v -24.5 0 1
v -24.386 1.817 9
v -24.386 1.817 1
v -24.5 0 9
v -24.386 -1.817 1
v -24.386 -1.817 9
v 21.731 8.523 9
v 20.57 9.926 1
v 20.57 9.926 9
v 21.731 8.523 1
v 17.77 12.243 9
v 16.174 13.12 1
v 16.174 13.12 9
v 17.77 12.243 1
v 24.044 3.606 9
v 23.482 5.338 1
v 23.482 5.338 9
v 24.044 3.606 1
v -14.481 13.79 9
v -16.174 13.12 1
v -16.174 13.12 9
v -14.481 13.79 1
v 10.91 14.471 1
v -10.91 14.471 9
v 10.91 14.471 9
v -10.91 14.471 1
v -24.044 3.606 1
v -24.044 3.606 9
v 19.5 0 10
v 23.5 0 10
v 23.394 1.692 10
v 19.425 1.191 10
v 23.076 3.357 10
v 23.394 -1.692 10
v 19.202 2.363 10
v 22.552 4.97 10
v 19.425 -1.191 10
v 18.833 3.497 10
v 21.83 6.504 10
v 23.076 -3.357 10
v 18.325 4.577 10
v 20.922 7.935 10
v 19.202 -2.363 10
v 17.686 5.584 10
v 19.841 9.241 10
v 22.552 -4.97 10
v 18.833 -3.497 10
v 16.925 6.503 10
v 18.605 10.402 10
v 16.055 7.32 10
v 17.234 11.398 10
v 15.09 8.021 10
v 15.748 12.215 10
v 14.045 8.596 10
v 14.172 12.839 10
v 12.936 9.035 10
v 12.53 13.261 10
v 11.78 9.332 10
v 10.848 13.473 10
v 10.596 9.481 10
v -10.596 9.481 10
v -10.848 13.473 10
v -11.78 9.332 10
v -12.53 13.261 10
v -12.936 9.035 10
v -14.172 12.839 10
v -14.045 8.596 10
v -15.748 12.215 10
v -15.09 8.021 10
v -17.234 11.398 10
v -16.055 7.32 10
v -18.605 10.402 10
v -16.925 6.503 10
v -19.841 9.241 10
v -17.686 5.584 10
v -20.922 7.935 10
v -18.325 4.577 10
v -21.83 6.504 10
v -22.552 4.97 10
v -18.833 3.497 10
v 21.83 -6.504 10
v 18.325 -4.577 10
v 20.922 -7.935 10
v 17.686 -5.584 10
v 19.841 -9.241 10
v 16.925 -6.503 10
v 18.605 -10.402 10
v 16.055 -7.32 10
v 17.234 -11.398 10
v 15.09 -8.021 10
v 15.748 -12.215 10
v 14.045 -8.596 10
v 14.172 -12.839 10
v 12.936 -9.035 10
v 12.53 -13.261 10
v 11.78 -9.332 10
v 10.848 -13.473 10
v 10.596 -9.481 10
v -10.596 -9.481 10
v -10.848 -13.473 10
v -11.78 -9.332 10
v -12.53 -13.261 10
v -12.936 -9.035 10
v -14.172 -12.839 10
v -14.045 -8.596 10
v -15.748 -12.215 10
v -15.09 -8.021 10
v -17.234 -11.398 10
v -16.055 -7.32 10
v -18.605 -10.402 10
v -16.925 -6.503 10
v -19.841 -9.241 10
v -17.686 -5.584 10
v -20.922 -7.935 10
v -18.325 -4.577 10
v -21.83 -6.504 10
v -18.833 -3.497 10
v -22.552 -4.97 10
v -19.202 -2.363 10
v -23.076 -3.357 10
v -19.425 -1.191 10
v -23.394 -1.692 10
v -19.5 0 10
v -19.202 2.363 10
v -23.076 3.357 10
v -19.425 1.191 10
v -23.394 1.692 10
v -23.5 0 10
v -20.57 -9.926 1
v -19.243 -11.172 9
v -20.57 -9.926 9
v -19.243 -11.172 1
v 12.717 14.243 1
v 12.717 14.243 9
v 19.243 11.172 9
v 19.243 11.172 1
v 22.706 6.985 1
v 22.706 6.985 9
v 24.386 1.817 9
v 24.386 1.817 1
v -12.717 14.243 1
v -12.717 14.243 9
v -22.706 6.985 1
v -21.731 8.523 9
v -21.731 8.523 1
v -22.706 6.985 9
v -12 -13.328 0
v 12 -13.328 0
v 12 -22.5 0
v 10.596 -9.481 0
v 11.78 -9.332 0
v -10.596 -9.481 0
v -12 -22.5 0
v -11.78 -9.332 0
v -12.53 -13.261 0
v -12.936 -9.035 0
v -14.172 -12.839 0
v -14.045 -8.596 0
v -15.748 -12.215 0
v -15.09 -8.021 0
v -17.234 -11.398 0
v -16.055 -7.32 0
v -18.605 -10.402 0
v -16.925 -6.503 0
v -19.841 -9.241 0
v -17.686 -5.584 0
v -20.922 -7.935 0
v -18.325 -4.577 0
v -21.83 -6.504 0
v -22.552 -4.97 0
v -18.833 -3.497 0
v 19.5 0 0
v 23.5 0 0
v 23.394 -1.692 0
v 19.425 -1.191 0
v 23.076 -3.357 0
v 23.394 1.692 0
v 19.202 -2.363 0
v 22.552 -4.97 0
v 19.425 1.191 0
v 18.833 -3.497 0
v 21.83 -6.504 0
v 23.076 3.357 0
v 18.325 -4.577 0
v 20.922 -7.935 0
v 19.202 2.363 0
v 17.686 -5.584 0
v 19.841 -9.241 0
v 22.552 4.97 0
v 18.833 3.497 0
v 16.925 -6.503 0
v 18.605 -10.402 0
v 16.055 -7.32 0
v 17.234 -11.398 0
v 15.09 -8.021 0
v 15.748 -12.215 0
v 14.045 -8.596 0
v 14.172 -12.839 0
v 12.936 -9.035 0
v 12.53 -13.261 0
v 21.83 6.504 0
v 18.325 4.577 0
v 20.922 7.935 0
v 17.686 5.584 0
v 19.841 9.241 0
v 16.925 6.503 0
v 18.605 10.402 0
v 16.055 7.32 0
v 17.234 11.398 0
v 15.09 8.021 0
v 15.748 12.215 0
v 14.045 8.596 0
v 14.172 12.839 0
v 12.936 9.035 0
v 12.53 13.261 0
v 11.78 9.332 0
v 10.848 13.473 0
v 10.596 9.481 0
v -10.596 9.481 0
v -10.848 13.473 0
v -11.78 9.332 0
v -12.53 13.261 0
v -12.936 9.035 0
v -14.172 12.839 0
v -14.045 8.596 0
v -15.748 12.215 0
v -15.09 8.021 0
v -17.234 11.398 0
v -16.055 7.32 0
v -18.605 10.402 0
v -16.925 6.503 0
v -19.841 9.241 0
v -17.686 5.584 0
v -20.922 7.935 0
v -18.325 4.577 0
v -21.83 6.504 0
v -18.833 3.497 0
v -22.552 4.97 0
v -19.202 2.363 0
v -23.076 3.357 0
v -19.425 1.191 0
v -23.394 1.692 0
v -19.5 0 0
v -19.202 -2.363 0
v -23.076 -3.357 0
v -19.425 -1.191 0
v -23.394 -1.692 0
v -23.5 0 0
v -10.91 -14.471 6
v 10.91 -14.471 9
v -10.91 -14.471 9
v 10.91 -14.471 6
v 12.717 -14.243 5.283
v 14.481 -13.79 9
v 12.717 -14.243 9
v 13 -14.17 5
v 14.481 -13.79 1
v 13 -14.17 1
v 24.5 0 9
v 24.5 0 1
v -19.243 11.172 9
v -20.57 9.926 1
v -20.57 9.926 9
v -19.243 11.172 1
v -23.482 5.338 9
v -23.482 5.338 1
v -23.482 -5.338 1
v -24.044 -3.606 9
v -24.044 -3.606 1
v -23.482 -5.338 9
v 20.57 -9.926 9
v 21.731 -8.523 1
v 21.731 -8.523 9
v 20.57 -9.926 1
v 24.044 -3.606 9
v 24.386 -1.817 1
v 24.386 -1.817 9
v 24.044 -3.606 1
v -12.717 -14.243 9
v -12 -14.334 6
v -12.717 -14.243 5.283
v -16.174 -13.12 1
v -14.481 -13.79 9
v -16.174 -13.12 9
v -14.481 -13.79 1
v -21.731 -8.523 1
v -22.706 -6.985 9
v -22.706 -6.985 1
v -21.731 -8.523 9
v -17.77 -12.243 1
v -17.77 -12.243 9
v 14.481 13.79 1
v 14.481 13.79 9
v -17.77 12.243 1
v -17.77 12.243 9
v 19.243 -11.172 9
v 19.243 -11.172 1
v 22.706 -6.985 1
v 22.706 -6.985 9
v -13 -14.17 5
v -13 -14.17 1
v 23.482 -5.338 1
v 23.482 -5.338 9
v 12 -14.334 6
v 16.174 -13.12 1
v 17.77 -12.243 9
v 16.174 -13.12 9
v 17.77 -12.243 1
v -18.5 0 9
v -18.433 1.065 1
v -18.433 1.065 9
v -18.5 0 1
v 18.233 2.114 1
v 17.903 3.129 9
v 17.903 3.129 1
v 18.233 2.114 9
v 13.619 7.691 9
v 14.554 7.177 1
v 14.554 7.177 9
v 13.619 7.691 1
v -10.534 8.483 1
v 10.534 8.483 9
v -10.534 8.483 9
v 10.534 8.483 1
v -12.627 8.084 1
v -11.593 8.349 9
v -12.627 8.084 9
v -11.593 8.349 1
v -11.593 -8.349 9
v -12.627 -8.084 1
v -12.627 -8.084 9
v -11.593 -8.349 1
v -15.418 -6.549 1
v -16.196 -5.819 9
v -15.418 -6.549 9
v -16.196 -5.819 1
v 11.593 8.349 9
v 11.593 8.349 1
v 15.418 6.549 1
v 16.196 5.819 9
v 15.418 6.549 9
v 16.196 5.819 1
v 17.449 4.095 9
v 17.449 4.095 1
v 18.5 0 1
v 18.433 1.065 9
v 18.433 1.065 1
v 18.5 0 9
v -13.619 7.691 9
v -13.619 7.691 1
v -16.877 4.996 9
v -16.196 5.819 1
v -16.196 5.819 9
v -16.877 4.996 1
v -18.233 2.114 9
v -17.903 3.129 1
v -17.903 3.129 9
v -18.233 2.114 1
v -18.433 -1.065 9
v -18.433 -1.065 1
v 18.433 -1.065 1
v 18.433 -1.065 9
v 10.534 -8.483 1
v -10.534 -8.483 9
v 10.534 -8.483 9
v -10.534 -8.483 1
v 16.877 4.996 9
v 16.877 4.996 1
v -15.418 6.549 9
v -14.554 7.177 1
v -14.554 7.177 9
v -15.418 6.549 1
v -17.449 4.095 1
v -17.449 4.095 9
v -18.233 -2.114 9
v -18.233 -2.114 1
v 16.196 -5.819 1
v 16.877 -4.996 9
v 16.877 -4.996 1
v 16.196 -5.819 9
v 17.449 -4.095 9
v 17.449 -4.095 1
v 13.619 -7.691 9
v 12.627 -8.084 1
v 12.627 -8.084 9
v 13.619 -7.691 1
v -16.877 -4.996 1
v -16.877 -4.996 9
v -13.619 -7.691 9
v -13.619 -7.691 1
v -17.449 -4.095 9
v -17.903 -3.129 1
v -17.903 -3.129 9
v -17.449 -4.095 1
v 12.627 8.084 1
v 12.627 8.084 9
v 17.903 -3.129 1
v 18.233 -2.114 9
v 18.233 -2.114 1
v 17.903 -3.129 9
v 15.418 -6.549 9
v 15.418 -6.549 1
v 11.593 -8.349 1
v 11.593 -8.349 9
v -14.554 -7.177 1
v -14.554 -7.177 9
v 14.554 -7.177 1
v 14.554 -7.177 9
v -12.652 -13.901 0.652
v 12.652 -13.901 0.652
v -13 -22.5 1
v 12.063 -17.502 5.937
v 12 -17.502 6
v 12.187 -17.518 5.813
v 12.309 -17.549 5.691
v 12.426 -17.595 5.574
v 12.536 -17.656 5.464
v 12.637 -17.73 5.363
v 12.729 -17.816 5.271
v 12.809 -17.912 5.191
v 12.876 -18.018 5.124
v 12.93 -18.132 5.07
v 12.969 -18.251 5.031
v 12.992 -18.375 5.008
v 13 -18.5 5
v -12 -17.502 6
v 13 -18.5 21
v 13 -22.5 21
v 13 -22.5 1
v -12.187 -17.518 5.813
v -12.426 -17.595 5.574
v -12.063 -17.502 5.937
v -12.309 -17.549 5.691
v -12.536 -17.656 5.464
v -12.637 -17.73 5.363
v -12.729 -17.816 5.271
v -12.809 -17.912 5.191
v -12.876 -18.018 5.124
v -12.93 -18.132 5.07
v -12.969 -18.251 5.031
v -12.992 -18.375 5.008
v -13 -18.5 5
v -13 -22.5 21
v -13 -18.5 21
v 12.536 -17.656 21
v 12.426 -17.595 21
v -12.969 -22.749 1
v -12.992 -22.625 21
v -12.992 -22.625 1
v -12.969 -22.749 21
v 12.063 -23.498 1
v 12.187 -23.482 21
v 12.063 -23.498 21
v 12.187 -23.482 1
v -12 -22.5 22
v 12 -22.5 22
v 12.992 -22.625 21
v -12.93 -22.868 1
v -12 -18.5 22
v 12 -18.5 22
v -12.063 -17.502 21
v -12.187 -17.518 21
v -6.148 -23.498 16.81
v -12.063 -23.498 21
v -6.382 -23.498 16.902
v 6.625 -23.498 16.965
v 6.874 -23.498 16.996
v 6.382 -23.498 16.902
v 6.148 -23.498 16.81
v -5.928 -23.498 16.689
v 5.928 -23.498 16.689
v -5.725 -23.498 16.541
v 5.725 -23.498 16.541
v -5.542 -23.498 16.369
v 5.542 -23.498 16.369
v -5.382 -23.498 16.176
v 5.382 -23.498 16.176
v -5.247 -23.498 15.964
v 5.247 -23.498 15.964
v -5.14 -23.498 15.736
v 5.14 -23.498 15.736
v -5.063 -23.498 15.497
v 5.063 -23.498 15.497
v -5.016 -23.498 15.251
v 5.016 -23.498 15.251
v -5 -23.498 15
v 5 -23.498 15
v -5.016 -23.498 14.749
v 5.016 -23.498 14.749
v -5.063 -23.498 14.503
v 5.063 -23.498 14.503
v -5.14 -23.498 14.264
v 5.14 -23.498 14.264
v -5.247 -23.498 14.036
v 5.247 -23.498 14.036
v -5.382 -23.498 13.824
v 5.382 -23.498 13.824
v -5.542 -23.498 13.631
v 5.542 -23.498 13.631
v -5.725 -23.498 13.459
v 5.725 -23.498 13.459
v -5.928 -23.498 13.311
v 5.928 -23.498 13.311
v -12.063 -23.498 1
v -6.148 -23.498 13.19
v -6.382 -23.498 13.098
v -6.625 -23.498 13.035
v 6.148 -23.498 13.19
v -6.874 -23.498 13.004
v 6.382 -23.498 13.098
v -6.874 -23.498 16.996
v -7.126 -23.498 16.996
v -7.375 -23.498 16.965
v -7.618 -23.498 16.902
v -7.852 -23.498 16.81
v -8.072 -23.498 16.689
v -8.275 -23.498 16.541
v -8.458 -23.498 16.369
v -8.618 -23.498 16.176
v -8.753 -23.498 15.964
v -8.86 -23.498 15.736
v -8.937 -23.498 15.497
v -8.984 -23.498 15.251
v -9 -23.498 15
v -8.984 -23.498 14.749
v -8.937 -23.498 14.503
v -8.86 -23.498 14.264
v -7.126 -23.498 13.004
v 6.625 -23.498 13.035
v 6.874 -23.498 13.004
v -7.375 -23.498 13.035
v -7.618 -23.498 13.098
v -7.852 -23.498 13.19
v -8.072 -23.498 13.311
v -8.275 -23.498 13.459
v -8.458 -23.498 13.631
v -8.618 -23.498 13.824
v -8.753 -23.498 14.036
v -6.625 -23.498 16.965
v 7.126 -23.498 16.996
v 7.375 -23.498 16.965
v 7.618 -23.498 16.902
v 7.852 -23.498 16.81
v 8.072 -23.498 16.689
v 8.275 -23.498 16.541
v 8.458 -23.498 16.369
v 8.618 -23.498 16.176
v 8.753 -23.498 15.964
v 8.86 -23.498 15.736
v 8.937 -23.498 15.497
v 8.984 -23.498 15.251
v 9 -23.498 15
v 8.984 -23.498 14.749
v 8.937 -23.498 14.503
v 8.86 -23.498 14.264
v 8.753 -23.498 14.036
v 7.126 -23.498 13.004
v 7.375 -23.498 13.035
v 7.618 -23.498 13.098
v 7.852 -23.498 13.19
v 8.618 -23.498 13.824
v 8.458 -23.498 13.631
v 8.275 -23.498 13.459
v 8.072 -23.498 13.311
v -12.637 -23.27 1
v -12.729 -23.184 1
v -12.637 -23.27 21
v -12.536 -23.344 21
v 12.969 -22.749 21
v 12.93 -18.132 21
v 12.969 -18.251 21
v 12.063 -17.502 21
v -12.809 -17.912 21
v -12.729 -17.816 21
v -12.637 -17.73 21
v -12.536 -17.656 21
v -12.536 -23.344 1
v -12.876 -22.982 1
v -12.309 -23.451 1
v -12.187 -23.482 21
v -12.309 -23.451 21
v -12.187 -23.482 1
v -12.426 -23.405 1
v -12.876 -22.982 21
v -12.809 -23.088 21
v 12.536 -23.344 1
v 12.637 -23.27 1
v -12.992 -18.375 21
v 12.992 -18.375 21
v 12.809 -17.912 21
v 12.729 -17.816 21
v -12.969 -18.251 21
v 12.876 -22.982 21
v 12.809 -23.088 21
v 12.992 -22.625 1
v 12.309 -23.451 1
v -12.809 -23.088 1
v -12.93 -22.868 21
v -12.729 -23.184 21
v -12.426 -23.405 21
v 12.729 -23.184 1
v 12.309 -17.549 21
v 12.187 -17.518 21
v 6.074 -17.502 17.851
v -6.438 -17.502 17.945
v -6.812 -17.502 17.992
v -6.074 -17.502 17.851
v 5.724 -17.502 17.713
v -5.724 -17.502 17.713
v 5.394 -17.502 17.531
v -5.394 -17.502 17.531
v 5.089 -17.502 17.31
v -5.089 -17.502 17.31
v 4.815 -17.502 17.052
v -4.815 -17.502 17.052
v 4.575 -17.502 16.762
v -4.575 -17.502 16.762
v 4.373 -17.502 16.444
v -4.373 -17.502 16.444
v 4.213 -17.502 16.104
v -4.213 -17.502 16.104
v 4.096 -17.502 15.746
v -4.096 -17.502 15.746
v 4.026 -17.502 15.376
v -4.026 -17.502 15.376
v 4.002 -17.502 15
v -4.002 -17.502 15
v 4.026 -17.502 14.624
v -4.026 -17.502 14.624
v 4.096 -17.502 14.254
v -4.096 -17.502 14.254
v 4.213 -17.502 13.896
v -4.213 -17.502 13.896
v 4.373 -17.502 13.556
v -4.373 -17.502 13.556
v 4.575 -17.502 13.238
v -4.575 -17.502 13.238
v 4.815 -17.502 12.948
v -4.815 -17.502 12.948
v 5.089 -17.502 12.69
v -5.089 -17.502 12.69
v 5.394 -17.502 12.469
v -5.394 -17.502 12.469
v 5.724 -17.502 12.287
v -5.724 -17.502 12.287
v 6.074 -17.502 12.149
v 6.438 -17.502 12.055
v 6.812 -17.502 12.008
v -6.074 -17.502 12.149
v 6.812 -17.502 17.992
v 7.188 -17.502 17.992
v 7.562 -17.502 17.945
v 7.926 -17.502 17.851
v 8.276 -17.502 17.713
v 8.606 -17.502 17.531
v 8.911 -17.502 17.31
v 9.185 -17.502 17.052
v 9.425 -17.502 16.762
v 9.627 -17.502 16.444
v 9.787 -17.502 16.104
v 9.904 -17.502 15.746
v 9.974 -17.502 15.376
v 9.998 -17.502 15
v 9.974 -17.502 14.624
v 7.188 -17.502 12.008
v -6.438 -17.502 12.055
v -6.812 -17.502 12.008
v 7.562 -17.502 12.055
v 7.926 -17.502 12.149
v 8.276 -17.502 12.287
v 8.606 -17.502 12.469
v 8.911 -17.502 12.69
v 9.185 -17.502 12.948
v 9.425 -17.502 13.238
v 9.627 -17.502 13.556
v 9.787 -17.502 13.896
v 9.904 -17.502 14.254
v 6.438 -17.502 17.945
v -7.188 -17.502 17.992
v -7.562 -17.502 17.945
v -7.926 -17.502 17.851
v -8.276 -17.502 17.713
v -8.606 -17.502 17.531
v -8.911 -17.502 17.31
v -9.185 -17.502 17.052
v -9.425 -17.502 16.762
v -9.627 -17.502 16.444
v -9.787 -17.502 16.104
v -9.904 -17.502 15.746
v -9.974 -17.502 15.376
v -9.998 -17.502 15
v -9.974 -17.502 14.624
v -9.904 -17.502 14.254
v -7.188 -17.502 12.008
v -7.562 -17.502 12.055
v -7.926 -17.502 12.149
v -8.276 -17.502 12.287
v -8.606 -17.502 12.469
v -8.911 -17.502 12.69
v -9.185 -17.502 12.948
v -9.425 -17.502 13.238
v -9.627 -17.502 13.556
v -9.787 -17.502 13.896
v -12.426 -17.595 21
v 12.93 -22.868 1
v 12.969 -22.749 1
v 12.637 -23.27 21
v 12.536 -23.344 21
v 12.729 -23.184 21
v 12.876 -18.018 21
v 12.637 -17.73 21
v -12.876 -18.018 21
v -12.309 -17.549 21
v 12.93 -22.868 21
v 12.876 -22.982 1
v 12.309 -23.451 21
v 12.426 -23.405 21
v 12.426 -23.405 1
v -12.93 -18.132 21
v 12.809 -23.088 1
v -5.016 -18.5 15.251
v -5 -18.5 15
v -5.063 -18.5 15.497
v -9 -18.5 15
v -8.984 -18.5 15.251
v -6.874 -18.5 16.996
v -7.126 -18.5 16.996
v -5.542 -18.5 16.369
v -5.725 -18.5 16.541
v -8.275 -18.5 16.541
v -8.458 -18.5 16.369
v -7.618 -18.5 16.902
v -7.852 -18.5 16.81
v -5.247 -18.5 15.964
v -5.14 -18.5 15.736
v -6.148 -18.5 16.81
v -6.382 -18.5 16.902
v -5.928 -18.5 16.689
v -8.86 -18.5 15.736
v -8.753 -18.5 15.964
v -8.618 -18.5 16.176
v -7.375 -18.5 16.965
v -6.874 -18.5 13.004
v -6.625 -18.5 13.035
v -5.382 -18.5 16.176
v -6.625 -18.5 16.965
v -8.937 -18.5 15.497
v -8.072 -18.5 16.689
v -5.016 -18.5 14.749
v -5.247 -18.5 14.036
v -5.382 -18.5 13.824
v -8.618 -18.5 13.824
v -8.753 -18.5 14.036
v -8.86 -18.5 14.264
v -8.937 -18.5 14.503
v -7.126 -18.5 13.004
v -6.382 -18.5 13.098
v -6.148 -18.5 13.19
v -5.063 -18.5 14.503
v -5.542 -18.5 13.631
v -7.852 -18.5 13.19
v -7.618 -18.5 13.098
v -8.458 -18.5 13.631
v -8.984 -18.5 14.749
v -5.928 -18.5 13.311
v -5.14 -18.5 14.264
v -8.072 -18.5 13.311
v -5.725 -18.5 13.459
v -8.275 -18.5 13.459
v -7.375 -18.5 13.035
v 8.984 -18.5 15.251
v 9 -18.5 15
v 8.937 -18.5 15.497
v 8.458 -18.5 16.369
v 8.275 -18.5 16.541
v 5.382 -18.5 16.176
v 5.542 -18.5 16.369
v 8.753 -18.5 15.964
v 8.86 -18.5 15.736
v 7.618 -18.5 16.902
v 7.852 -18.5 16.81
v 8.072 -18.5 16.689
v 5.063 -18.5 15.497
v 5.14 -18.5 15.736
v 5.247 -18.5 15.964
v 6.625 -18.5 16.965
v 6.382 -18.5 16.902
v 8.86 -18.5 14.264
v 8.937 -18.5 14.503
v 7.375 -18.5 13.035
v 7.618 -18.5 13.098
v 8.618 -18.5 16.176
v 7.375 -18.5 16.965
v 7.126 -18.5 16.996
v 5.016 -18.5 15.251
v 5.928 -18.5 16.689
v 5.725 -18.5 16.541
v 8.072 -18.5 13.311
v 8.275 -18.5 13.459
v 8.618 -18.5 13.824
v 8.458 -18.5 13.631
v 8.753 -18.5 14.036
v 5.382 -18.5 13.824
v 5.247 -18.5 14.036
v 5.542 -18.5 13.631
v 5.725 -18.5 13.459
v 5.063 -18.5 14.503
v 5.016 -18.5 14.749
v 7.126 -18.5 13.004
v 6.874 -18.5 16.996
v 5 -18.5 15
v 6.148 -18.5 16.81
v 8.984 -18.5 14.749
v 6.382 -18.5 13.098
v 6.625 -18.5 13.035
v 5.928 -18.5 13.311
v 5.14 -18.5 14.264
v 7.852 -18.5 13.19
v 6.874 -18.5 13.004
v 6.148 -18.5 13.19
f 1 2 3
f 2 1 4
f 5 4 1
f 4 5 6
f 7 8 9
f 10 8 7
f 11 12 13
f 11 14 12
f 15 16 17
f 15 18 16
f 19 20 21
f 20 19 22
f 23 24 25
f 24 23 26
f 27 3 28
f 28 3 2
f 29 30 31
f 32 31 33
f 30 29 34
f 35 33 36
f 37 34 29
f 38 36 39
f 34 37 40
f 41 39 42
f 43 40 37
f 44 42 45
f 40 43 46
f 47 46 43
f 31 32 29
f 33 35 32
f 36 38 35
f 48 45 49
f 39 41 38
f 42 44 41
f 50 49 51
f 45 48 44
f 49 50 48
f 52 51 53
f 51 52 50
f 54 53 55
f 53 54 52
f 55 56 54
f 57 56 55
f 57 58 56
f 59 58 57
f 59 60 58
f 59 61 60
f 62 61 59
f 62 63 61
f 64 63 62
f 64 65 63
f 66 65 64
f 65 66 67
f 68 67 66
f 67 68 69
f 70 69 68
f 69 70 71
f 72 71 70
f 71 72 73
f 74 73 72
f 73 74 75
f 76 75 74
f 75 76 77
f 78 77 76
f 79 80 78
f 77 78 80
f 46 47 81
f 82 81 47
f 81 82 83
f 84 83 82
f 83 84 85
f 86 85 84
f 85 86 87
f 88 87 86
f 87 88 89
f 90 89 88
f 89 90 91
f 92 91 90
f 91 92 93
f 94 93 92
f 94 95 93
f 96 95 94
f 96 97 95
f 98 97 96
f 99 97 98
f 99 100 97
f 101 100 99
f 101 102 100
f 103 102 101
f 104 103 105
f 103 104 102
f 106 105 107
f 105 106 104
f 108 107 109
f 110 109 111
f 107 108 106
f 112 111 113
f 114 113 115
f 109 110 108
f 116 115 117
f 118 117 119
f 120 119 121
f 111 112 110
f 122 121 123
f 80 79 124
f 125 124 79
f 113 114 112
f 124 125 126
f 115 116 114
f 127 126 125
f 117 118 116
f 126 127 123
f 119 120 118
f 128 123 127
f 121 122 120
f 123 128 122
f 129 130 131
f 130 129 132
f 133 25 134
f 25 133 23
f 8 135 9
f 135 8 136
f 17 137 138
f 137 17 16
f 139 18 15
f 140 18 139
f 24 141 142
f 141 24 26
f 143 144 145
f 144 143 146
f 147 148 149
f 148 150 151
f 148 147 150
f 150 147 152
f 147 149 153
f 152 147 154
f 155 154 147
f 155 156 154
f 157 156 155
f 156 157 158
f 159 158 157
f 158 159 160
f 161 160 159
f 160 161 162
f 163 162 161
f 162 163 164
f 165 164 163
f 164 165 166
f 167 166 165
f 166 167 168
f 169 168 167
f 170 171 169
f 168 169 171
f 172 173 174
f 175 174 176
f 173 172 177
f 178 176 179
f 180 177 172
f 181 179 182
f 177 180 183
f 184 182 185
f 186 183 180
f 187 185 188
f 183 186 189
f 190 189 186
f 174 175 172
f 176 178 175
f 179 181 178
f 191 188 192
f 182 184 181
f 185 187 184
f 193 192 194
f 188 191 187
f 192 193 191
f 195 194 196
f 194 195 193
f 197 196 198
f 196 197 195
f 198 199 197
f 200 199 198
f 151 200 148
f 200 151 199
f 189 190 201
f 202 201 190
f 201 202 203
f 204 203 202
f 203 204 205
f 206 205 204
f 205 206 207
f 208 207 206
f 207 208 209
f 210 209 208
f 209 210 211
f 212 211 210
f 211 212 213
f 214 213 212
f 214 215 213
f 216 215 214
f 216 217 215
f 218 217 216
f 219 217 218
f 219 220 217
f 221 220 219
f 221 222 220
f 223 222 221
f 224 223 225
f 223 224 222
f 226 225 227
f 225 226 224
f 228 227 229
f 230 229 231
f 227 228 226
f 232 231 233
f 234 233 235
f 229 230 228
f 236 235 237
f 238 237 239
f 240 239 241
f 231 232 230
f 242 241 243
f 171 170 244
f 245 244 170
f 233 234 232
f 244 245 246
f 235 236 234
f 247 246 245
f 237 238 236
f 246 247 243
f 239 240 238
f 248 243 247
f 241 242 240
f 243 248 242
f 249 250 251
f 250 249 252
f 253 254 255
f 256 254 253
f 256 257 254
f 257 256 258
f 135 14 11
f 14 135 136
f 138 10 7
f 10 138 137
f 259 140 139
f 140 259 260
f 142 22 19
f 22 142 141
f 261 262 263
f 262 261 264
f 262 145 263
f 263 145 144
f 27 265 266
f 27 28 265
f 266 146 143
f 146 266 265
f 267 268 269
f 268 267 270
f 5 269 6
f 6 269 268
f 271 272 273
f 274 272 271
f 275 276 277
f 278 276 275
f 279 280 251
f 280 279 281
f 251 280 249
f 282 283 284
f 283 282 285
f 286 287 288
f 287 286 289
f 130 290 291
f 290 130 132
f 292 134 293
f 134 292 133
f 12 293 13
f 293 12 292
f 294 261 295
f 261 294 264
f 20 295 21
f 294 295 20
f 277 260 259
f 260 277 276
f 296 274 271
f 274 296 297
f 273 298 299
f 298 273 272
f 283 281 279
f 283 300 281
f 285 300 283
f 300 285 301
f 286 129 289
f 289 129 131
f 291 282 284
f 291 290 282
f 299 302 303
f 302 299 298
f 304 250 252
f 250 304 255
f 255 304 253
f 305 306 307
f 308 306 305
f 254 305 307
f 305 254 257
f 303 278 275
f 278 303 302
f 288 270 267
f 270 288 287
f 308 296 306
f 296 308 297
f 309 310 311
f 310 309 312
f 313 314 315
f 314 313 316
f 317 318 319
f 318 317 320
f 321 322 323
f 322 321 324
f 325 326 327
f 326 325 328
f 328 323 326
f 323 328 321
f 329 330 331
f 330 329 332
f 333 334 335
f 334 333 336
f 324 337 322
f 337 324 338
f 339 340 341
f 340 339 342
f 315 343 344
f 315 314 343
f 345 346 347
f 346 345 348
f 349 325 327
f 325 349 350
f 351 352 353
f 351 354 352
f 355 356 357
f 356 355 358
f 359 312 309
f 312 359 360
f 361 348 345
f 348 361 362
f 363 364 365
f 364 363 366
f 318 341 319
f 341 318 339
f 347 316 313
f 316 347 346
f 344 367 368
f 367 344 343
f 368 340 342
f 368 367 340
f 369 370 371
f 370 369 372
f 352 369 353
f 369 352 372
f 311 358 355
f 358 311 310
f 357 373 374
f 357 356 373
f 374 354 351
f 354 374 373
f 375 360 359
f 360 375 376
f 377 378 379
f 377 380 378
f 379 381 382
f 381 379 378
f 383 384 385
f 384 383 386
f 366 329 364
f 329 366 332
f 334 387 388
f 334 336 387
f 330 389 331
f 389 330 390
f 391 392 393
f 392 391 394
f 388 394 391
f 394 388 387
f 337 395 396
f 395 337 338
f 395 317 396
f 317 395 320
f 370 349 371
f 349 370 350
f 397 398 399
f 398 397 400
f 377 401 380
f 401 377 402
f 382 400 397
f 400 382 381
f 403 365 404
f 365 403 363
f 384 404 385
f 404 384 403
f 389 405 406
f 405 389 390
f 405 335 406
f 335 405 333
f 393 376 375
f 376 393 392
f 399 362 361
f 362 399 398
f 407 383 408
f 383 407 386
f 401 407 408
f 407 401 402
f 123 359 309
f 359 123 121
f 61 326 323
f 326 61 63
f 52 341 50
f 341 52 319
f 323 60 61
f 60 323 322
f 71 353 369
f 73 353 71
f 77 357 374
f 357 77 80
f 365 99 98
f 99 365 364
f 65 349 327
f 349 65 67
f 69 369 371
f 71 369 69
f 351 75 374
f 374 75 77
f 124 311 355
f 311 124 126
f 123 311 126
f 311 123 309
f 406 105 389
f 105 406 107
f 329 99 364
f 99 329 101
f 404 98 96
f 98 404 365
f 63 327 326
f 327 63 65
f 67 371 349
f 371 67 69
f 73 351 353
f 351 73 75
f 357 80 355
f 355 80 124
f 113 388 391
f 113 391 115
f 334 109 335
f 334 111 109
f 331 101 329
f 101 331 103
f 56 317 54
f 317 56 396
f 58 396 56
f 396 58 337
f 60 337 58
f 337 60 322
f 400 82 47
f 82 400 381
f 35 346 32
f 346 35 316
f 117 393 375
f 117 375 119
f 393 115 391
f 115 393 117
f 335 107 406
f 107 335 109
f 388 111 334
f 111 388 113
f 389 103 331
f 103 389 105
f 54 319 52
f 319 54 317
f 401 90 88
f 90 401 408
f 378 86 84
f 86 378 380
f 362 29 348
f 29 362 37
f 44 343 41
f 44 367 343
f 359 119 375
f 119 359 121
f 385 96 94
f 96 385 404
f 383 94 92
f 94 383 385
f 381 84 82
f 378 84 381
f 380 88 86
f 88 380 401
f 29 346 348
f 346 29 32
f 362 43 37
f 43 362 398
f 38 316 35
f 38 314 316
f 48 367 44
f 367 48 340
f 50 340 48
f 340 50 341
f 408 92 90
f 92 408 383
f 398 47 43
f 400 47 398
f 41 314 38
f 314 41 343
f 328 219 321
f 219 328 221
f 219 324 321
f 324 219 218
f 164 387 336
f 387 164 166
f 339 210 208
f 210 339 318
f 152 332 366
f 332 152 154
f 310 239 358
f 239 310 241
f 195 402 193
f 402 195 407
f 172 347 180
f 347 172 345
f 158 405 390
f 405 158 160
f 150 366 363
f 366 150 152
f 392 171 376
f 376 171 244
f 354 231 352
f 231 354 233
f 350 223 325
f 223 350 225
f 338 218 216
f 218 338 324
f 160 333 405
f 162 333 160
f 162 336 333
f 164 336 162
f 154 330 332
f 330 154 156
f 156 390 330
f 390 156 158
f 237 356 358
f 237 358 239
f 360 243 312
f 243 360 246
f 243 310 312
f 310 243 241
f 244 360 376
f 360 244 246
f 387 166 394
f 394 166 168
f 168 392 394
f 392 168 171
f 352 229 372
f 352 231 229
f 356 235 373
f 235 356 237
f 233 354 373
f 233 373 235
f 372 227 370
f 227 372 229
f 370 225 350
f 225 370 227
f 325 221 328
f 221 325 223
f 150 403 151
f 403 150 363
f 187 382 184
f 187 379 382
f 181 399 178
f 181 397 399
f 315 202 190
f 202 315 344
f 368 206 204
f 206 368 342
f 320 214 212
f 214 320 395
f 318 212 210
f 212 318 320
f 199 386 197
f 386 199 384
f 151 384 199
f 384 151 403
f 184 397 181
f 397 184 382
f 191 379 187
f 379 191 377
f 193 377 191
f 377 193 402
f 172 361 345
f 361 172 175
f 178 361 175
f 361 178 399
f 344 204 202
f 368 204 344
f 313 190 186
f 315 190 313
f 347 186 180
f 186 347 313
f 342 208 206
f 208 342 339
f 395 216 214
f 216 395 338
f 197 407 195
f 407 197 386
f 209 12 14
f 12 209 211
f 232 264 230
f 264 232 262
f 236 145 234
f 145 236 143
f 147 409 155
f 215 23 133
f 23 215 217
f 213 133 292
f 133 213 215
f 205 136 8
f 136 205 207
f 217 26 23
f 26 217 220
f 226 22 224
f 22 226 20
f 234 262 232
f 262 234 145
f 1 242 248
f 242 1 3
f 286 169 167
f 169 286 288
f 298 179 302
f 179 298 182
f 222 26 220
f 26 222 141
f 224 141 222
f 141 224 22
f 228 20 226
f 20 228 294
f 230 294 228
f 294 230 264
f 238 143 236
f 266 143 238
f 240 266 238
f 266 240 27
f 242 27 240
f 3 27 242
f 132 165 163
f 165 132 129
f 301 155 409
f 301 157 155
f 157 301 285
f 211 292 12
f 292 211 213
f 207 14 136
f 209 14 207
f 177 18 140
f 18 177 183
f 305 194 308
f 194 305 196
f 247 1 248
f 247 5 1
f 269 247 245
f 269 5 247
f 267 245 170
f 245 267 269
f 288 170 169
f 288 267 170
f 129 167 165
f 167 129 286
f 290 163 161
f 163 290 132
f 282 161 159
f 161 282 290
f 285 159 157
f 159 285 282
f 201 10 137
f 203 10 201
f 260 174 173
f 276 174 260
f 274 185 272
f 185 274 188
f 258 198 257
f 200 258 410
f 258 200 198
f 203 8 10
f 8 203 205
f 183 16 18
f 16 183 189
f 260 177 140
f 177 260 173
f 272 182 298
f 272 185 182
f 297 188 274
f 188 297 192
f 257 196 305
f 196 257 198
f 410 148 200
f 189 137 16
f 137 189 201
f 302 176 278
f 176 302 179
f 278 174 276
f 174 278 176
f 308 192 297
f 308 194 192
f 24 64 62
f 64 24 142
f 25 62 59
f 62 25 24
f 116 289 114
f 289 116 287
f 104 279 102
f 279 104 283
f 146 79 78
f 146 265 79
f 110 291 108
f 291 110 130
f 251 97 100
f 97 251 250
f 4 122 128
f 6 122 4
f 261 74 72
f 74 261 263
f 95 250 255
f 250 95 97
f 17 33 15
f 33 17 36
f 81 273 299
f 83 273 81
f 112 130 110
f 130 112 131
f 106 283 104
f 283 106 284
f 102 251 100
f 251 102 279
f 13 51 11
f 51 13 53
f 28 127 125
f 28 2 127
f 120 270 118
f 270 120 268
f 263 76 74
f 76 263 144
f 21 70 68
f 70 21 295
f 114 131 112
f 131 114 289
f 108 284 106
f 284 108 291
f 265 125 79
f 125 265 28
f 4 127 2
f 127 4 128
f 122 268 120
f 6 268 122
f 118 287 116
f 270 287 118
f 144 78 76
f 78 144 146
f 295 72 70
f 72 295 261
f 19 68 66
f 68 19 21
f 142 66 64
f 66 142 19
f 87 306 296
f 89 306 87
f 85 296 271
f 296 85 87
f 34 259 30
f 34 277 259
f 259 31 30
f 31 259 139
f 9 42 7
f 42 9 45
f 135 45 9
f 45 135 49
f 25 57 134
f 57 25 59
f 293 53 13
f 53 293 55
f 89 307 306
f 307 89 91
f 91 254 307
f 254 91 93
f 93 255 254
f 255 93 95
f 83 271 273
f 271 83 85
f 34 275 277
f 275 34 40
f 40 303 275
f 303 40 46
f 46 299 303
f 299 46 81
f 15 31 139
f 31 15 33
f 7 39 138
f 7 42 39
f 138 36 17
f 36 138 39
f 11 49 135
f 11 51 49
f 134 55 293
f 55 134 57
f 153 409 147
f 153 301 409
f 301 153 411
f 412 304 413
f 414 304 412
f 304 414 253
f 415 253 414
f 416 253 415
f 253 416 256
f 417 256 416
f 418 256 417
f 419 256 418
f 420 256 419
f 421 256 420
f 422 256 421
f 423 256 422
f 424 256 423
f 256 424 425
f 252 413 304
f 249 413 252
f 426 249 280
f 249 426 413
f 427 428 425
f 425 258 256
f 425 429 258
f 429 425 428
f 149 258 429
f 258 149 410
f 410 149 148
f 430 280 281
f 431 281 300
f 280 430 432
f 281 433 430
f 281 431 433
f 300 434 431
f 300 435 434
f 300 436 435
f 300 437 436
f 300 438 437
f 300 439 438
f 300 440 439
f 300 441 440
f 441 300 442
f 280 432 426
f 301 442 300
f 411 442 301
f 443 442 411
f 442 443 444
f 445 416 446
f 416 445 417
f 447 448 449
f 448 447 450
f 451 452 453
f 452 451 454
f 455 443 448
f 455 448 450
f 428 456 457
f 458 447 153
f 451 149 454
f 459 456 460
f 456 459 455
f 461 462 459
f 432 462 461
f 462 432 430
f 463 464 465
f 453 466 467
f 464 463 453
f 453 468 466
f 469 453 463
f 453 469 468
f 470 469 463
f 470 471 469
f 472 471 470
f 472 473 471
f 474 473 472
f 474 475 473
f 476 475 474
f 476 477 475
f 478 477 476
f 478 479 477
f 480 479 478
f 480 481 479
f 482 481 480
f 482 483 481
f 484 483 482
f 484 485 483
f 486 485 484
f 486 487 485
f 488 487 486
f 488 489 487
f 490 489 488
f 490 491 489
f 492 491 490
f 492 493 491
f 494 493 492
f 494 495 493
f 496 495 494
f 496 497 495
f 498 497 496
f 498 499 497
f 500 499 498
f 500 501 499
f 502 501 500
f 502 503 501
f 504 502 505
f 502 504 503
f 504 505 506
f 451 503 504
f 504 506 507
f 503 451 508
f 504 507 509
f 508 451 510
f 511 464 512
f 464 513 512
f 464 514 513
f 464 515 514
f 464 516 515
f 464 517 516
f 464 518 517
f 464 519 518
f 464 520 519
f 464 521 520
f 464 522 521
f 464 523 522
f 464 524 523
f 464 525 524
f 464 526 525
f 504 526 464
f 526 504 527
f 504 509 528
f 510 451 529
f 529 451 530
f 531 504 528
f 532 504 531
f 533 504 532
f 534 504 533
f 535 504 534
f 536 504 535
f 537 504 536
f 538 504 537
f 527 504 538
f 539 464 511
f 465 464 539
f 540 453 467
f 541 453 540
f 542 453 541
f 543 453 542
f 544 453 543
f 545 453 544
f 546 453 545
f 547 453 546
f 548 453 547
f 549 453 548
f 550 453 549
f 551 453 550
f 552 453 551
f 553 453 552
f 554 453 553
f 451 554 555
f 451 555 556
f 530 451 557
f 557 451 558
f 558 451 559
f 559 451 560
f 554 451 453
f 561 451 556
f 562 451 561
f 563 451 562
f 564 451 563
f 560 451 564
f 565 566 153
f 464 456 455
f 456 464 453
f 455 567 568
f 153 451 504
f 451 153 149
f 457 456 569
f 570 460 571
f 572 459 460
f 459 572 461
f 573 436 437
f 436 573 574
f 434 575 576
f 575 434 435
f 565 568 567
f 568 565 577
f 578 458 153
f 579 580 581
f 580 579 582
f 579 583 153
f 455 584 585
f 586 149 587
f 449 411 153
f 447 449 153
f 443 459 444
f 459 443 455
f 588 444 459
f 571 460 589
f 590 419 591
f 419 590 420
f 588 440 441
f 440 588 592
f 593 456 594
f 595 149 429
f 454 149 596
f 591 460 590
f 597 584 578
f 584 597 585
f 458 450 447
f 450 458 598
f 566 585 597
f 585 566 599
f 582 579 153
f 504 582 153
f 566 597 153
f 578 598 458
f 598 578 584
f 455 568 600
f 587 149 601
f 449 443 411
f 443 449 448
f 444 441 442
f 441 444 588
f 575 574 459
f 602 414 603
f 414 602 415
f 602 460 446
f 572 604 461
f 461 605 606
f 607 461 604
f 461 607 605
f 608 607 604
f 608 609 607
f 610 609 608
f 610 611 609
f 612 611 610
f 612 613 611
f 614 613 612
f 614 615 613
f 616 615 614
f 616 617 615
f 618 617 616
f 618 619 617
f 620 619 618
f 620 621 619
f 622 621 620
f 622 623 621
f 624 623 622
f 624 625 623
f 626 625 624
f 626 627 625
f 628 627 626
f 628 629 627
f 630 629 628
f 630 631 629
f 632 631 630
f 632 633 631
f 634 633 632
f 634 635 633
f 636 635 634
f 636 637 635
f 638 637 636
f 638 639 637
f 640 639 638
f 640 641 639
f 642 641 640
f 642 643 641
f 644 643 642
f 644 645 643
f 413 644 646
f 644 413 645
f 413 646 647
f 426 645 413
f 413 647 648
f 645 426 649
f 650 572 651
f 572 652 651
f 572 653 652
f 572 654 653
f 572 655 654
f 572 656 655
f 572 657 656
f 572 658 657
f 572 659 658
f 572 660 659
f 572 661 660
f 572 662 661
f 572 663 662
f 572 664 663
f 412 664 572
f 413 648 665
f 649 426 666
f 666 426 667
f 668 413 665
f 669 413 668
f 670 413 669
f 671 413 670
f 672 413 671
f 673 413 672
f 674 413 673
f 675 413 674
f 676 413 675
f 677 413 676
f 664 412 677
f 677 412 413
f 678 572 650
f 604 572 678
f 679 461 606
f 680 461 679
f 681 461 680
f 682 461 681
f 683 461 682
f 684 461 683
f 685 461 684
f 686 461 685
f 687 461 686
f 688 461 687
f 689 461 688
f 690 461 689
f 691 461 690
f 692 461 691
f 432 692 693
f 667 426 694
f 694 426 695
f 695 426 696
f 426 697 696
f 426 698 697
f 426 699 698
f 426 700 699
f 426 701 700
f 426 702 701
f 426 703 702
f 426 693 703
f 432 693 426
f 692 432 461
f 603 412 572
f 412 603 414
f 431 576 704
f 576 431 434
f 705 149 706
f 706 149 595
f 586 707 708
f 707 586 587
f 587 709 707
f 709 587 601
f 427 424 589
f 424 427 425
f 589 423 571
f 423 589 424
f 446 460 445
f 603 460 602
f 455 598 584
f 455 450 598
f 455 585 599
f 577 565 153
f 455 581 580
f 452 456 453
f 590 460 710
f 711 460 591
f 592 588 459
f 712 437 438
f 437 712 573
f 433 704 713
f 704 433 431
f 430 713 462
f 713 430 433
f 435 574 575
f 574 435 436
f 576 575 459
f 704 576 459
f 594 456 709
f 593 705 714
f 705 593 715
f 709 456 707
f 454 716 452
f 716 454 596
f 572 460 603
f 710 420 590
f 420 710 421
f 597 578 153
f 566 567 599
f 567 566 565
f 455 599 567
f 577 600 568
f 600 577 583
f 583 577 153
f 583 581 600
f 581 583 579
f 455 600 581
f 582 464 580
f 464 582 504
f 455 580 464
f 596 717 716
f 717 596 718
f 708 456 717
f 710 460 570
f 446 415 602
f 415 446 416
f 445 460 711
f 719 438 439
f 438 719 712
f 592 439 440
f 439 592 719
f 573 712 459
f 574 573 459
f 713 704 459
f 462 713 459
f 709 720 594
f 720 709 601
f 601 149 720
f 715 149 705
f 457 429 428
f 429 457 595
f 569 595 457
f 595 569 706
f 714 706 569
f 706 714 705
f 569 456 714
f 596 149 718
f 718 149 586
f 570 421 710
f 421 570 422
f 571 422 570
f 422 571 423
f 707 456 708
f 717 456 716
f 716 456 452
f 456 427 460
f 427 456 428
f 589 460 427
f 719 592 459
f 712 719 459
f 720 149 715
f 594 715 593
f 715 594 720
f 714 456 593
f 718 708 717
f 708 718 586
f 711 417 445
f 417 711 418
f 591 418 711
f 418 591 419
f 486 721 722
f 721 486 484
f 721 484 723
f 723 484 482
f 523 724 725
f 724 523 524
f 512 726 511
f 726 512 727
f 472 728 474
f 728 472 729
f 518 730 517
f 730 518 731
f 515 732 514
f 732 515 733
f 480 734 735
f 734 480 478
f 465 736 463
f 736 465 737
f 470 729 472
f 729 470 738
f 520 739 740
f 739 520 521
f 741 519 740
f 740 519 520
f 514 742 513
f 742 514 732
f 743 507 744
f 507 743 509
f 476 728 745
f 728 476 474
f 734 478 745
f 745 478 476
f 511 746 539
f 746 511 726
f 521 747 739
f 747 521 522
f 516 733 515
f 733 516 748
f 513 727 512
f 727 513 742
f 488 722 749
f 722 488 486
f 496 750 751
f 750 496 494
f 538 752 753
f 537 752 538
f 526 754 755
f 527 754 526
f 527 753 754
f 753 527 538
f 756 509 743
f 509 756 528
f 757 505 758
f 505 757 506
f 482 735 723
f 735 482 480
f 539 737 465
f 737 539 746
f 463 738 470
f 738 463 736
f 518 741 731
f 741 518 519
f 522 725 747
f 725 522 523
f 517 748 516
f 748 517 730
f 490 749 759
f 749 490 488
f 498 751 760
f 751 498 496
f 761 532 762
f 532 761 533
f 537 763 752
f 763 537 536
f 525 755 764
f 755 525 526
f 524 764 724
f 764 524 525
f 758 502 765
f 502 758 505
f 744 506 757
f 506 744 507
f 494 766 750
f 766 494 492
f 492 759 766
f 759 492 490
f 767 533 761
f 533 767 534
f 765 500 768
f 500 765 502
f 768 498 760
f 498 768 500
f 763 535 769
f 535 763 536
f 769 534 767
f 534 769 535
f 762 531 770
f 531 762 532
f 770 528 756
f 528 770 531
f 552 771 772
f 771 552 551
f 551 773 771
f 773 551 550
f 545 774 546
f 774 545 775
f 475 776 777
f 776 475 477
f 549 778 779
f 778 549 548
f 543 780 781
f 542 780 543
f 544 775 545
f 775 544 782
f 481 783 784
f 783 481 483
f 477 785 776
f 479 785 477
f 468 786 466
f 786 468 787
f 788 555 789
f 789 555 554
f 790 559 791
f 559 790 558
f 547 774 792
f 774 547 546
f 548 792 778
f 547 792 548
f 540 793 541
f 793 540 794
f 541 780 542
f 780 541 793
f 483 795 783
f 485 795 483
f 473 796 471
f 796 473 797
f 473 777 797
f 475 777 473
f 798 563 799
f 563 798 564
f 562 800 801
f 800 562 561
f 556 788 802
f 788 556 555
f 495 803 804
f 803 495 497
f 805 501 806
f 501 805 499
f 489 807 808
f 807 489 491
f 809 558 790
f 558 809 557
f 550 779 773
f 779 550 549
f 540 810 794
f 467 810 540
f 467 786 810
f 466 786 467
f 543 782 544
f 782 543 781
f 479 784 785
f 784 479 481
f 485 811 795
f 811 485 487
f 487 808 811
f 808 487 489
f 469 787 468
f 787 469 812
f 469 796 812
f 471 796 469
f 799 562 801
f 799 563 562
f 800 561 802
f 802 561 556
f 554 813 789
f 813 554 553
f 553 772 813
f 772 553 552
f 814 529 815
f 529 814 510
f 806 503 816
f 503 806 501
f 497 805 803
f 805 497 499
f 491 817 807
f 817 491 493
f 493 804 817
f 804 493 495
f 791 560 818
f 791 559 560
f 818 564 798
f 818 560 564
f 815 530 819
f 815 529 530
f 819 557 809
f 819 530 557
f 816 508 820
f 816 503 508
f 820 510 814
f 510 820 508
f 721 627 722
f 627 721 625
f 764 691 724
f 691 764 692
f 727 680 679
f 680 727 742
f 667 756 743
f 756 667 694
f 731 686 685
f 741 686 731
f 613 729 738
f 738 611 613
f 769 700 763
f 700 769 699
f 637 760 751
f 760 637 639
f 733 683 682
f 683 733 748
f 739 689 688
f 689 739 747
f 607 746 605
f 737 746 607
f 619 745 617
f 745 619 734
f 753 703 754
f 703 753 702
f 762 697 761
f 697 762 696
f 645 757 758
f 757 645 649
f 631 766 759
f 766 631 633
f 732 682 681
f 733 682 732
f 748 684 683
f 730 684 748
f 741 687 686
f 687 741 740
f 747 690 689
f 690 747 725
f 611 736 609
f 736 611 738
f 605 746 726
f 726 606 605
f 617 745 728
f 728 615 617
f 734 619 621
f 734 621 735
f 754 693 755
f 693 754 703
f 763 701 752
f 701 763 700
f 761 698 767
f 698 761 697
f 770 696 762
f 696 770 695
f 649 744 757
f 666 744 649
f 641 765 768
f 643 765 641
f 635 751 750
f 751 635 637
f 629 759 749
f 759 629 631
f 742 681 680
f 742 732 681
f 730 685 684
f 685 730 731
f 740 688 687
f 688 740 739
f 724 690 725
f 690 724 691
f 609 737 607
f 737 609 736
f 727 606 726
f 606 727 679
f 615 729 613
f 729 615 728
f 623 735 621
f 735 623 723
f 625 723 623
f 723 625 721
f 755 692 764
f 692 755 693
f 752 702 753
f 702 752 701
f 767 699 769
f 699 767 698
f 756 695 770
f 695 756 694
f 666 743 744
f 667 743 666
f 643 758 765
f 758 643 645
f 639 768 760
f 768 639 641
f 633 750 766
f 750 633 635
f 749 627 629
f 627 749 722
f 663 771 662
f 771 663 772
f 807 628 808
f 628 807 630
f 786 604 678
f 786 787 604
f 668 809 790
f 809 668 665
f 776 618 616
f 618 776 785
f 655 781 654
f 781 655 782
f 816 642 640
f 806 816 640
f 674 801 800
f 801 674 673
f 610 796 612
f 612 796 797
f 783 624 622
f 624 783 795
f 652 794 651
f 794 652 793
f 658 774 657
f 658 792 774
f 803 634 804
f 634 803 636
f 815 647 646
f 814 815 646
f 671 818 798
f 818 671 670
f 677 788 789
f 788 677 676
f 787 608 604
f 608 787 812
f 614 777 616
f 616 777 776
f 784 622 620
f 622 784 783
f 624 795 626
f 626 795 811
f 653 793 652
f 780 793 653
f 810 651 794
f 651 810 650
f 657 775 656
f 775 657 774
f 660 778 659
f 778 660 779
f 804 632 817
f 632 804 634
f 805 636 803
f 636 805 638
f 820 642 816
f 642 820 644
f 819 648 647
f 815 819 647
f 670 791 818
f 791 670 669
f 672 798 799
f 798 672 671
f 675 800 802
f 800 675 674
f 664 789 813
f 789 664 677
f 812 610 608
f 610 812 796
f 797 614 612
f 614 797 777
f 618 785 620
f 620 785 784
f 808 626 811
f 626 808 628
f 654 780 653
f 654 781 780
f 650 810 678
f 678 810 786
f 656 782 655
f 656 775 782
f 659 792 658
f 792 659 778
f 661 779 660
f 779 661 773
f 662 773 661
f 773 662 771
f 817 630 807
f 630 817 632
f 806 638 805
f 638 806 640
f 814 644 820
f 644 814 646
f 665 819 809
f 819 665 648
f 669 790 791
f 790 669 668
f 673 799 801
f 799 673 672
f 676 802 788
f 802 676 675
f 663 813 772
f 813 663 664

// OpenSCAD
// used to push the top edge of a roll-down curtain against a windowframe
// with a 16.3mm/.65in diameter dowel

// at lines 81-86 and lines 97-102 note the option of toggling between a 
// long version and short version

// my windowsills are slightly proud of the surrounding drywall so YMMV

$fn = 50;
diameter = 17;
buck_height = 40;
bracket_thickness = (diameter / 2) + 6;

// commented out dowel to check clearances
translate([0, 0, -50]) %cylinder(r1=diameter/2, r2=diameter/2, h=100);
// wall clearance
%translate([0, -16, -5]) cube([10, 15, 10], center=true);
difference(){
    union(){
        //racetrack body of bracket before chamfer
        intersection(){
            difference(){
                //bracket_body
                translate([-10, 0, 0]){
                    hull(){
                        cylinder(r1=bracket_thickness, r2=bracket_thickness, h=10);
                        translate([20, 0, 0]){
                            cylinder(r1=bracket_thickness, r2=bracket_thickness, h=10);
                        }
                    }
                }

                // cutout for dowel
                translate([-10, 0, -(buck_height / 2)]){
                    hull(){
                        cylinder(r1=diameter/2, r2=diameter/2, h=buck_height);
                        translate([20, 0, 0]){
                            cylinder(r1=diameter/2, r2=diameter/2, h=buck_height);
                        }
                    }
                }
                //buck for UPPER inner chamfer of racetrack
                translate([-10, 0, .5]){
                    hull(){
                        cylinder(r1=0, r2=diameter, h=diameter);
                        translate([20, 0, 0]){
                            cylinder(r1=0, r2=diameter, h=diameter);
                        }
                    }
                }
                //buck for LOWER inner chamfer of racetrack
                translate([-10, 0, -7.5]){
                    hull(){
                        cylinder(r1=diameter, r2=0, h=diameter);
                        translate([20, 0, 0]){
                            cylinder(r1=diameter, r2=0, h=diameter);
                        }
                    }
                }
            }
            // buck for LOWER outer chamfer of racetrack
            translate([-10, 0, -13.5]){
                hull(){
                    cylinder(r1=0, r2=diameter * 2, h=diameter * 2);
                    translate([20, 0, 0]){
                        cylinder(r1=0, r2=diameter * 2, h=diameter * 2);
                    }
                }
            }
            // buck for UPPER outer chamfer of racetrack
            translate([-10, 0, -10.5]){
                hull(){
                    cylinder(r2=0, r1=diameter * 2, h=diameter * 2);
                    translate([20, 0, 0]){
                        cylinder(r2=0, r1=diameter * 2, h=diameter * 2);
                    }
                }
            }
        }
        // attachment plate
        minkowski(){
            union(){
                //vertical block
                // short version
                translate([0, -20.5, 11]) cube([24, 4, 20], center=true);
                translate([0, -15, 3]) rotate([90, 0, 0]) cube([24, 4, 10], center=true);
                // long version
                //translate([0, -25.5, 11]) cube([24, 4, 20], center=true);
                //translate([0, -20, 3]) rotate([90, 0, 0]) cube([24, 4, 14], center=true);
                //horizontal block
            }
            union(){
                cylinder(r1=1, r2=0, h=1);
                translate([0, 0, -1]) cylinder(r2=1, r1=0, h=1);
            }
        }
    }
    // screw hole (-X)
    translate([-7, -15, 15]) rotate([90, 0, 0]) cylinder(r1=2, r2=2, h=30, center=true);
    // screw hole (+X)
    translate([7, -15, 15]) rotate([90, 0, 0]) cylinder(r1=2, r2=2, h=30, center=true);
    // short version hole chamfers
    translate([-7, -18.5, 15]) rotate([90, 0, 0]) cylinder(r1=4, r2=0, h=4, center=true);
    translate([7, -18.5, 15]) rotate([90, 0, 0]) cylinder(r1=4, r2=0, h=4, center=true);
    // long version hole chamfers
    //translate([-7, -23.5, 15]) rotate([90, 0, 0]) cylinder(r1=4, r2=0, h=4, center=true);
    //translate([7, -23.5, 15]) rotate([90, 0, 0]) cylinder(r1=4, r2=0, h=4, center=true);
}
